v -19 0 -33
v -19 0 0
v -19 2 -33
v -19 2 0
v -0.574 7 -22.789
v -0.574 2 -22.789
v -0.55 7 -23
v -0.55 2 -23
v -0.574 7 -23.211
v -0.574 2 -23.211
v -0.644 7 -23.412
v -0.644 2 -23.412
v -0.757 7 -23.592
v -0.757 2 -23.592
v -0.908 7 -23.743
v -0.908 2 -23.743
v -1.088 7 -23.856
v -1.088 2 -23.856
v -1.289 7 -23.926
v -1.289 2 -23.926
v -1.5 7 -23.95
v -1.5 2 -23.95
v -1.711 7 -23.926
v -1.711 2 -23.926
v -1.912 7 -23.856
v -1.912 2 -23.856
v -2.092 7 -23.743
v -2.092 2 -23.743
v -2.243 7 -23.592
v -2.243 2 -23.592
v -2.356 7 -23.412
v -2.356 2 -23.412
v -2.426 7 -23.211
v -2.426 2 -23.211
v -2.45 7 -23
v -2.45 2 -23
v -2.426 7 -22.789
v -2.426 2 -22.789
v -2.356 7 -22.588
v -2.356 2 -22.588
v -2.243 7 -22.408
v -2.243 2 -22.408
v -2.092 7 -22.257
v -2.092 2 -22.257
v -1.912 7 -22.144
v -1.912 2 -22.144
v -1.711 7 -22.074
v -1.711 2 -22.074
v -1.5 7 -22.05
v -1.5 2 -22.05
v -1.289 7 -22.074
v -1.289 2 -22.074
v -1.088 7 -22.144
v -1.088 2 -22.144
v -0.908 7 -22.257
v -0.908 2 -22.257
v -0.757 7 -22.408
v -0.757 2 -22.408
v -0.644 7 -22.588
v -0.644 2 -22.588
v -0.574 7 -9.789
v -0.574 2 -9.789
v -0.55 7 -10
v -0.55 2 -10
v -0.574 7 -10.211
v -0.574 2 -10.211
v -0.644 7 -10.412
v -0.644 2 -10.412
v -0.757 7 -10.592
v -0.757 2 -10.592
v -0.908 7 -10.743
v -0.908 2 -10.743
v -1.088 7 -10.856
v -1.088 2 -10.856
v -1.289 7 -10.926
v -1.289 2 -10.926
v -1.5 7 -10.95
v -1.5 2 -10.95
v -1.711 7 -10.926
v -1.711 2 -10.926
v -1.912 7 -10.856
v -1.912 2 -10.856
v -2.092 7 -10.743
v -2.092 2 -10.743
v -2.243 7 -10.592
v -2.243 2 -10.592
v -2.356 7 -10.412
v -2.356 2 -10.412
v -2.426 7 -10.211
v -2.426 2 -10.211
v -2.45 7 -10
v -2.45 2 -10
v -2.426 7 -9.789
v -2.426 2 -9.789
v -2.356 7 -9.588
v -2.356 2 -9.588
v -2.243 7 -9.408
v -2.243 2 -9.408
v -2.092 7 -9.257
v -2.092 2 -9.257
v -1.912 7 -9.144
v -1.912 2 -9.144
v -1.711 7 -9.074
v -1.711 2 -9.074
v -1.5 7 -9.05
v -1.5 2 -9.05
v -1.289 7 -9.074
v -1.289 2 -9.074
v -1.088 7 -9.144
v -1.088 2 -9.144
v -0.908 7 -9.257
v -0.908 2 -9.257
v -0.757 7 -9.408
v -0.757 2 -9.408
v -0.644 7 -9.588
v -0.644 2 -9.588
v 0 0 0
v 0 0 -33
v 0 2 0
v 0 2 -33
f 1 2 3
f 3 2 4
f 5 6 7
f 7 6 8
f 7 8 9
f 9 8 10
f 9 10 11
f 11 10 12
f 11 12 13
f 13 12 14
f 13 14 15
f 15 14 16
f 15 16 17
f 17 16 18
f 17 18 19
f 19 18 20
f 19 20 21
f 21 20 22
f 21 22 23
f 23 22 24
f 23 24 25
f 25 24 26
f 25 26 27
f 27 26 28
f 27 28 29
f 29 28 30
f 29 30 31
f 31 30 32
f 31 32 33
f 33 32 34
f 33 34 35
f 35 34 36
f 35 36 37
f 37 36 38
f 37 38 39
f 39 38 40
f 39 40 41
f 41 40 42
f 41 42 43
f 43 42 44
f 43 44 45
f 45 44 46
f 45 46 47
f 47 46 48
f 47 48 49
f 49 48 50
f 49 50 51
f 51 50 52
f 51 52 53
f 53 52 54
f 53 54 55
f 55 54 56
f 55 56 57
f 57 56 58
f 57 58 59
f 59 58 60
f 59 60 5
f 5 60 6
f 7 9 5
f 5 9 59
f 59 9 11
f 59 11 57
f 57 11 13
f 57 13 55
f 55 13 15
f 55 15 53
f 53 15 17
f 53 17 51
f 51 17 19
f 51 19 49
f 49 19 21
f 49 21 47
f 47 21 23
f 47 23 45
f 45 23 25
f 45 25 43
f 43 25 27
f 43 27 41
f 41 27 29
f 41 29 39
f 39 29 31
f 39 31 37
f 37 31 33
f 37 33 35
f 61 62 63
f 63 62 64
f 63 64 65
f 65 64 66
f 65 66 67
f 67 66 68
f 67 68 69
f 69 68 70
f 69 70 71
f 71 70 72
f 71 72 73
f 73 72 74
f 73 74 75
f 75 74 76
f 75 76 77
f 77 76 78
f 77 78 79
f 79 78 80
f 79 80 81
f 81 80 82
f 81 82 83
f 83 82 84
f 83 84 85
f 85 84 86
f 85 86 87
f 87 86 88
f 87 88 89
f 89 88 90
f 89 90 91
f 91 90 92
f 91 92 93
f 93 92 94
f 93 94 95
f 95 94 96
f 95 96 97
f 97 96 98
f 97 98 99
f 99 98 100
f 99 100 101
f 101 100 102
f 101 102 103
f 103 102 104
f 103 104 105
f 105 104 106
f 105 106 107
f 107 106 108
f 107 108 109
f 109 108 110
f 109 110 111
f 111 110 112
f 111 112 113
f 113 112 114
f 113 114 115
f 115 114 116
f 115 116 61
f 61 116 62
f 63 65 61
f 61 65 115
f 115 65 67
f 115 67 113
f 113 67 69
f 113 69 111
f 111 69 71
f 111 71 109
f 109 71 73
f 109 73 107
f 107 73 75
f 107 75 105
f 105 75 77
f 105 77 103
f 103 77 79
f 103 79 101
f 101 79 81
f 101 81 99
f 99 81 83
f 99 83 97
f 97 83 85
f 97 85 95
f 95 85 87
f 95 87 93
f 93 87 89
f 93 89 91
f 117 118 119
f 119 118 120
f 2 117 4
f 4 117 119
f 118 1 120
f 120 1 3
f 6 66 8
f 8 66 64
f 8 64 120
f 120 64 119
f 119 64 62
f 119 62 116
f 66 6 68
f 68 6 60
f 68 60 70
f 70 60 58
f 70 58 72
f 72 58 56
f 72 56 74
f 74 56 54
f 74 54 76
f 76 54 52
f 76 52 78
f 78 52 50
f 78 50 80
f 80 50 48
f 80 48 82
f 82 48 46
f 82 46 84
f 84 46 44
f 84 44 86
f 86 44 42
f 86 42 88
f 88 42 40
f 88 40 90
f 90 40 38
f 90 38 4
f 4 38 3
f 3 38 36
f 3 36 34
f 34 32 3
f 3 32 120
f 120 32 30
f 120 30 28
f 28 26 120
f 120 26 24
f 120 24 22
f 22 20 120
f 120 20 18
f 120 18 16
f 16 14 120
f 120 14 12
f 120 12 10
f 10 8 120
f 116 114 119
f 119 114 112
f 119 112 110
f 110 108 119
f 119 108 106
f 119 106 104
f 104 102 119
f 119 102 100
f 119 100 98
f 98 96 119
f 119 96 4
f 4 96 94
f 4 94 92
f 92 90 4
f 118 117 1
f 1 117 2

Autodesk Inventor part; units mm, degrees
ref_plane "YZ Plane" through (0, 0, 0) normal (1, 0, 0) x (0, 1, 0)
ref_plane "XZ Plane" through (0, 0, 0) normal (0, 1, 0) x (-1, 0, 0)
ref_plane "XY Plane" through (0, 0, 0) normal (0, 0, 1) x (1, 0, 0)
sketch "Boceto1" plane through (0, 0, 0) normal (0, 1, 0) x (-1, 0, 0)
  line L0 (0, 0) -> (3, 0)
  line L1 (3, 0) -> (3, -33)
  line L2 (3, -33) -> (0, -33)
  line L3 (0, -33) -> (0, 0)
  dimension "d0" = 3
  dimension "d1" = 33
extrude "Extrusión1" add sketch "Boceto1" along normal blind 2
sketch "Boceto2" plane through (0, 2, 0) normal (0, 1, 0) x (1, 0, 0)
  line L0 (-3, 0) -> (0, 0) projected
  line L1 (-1.5, 0) -> (-1.5, 10)
  line L2 (0, 33) -> (-3, 33) projected
  line L3 (-1.5, 33) -> (-1.5, 23)
  circle A0 centre (-1.5, 10) radius 0.95
  circle A1 centre (-1.5, 23) radius 0.95
  dimension "d4" = 10
  dimension "d5" = 10
  dimension "d8" = 1.9
  dimension "d9" = 1.9
extrude "Extrusión2" add sketch "Boceto2" along normal blind 5
sketch "Boceto3" plane through (-3, 0, -33) normal (-1, 0, 0) x (0, 0, 1)
  line L0 (0, 0) -> (33, 0) projected
  line L1 (33, 2) -> (0, 2) projected
  line L2 (33, 0) -> (0, 0)
  line L3 (0, 0) -> (0, 2)
  line L4 (0, 2) -> (33, 2)
  line L5 (33, 2) -> (33, 0)
extrude "Extrusión3" add sketch "Boceto3" along normal blind 16
properties part number "contrabase_fin_carrera"
